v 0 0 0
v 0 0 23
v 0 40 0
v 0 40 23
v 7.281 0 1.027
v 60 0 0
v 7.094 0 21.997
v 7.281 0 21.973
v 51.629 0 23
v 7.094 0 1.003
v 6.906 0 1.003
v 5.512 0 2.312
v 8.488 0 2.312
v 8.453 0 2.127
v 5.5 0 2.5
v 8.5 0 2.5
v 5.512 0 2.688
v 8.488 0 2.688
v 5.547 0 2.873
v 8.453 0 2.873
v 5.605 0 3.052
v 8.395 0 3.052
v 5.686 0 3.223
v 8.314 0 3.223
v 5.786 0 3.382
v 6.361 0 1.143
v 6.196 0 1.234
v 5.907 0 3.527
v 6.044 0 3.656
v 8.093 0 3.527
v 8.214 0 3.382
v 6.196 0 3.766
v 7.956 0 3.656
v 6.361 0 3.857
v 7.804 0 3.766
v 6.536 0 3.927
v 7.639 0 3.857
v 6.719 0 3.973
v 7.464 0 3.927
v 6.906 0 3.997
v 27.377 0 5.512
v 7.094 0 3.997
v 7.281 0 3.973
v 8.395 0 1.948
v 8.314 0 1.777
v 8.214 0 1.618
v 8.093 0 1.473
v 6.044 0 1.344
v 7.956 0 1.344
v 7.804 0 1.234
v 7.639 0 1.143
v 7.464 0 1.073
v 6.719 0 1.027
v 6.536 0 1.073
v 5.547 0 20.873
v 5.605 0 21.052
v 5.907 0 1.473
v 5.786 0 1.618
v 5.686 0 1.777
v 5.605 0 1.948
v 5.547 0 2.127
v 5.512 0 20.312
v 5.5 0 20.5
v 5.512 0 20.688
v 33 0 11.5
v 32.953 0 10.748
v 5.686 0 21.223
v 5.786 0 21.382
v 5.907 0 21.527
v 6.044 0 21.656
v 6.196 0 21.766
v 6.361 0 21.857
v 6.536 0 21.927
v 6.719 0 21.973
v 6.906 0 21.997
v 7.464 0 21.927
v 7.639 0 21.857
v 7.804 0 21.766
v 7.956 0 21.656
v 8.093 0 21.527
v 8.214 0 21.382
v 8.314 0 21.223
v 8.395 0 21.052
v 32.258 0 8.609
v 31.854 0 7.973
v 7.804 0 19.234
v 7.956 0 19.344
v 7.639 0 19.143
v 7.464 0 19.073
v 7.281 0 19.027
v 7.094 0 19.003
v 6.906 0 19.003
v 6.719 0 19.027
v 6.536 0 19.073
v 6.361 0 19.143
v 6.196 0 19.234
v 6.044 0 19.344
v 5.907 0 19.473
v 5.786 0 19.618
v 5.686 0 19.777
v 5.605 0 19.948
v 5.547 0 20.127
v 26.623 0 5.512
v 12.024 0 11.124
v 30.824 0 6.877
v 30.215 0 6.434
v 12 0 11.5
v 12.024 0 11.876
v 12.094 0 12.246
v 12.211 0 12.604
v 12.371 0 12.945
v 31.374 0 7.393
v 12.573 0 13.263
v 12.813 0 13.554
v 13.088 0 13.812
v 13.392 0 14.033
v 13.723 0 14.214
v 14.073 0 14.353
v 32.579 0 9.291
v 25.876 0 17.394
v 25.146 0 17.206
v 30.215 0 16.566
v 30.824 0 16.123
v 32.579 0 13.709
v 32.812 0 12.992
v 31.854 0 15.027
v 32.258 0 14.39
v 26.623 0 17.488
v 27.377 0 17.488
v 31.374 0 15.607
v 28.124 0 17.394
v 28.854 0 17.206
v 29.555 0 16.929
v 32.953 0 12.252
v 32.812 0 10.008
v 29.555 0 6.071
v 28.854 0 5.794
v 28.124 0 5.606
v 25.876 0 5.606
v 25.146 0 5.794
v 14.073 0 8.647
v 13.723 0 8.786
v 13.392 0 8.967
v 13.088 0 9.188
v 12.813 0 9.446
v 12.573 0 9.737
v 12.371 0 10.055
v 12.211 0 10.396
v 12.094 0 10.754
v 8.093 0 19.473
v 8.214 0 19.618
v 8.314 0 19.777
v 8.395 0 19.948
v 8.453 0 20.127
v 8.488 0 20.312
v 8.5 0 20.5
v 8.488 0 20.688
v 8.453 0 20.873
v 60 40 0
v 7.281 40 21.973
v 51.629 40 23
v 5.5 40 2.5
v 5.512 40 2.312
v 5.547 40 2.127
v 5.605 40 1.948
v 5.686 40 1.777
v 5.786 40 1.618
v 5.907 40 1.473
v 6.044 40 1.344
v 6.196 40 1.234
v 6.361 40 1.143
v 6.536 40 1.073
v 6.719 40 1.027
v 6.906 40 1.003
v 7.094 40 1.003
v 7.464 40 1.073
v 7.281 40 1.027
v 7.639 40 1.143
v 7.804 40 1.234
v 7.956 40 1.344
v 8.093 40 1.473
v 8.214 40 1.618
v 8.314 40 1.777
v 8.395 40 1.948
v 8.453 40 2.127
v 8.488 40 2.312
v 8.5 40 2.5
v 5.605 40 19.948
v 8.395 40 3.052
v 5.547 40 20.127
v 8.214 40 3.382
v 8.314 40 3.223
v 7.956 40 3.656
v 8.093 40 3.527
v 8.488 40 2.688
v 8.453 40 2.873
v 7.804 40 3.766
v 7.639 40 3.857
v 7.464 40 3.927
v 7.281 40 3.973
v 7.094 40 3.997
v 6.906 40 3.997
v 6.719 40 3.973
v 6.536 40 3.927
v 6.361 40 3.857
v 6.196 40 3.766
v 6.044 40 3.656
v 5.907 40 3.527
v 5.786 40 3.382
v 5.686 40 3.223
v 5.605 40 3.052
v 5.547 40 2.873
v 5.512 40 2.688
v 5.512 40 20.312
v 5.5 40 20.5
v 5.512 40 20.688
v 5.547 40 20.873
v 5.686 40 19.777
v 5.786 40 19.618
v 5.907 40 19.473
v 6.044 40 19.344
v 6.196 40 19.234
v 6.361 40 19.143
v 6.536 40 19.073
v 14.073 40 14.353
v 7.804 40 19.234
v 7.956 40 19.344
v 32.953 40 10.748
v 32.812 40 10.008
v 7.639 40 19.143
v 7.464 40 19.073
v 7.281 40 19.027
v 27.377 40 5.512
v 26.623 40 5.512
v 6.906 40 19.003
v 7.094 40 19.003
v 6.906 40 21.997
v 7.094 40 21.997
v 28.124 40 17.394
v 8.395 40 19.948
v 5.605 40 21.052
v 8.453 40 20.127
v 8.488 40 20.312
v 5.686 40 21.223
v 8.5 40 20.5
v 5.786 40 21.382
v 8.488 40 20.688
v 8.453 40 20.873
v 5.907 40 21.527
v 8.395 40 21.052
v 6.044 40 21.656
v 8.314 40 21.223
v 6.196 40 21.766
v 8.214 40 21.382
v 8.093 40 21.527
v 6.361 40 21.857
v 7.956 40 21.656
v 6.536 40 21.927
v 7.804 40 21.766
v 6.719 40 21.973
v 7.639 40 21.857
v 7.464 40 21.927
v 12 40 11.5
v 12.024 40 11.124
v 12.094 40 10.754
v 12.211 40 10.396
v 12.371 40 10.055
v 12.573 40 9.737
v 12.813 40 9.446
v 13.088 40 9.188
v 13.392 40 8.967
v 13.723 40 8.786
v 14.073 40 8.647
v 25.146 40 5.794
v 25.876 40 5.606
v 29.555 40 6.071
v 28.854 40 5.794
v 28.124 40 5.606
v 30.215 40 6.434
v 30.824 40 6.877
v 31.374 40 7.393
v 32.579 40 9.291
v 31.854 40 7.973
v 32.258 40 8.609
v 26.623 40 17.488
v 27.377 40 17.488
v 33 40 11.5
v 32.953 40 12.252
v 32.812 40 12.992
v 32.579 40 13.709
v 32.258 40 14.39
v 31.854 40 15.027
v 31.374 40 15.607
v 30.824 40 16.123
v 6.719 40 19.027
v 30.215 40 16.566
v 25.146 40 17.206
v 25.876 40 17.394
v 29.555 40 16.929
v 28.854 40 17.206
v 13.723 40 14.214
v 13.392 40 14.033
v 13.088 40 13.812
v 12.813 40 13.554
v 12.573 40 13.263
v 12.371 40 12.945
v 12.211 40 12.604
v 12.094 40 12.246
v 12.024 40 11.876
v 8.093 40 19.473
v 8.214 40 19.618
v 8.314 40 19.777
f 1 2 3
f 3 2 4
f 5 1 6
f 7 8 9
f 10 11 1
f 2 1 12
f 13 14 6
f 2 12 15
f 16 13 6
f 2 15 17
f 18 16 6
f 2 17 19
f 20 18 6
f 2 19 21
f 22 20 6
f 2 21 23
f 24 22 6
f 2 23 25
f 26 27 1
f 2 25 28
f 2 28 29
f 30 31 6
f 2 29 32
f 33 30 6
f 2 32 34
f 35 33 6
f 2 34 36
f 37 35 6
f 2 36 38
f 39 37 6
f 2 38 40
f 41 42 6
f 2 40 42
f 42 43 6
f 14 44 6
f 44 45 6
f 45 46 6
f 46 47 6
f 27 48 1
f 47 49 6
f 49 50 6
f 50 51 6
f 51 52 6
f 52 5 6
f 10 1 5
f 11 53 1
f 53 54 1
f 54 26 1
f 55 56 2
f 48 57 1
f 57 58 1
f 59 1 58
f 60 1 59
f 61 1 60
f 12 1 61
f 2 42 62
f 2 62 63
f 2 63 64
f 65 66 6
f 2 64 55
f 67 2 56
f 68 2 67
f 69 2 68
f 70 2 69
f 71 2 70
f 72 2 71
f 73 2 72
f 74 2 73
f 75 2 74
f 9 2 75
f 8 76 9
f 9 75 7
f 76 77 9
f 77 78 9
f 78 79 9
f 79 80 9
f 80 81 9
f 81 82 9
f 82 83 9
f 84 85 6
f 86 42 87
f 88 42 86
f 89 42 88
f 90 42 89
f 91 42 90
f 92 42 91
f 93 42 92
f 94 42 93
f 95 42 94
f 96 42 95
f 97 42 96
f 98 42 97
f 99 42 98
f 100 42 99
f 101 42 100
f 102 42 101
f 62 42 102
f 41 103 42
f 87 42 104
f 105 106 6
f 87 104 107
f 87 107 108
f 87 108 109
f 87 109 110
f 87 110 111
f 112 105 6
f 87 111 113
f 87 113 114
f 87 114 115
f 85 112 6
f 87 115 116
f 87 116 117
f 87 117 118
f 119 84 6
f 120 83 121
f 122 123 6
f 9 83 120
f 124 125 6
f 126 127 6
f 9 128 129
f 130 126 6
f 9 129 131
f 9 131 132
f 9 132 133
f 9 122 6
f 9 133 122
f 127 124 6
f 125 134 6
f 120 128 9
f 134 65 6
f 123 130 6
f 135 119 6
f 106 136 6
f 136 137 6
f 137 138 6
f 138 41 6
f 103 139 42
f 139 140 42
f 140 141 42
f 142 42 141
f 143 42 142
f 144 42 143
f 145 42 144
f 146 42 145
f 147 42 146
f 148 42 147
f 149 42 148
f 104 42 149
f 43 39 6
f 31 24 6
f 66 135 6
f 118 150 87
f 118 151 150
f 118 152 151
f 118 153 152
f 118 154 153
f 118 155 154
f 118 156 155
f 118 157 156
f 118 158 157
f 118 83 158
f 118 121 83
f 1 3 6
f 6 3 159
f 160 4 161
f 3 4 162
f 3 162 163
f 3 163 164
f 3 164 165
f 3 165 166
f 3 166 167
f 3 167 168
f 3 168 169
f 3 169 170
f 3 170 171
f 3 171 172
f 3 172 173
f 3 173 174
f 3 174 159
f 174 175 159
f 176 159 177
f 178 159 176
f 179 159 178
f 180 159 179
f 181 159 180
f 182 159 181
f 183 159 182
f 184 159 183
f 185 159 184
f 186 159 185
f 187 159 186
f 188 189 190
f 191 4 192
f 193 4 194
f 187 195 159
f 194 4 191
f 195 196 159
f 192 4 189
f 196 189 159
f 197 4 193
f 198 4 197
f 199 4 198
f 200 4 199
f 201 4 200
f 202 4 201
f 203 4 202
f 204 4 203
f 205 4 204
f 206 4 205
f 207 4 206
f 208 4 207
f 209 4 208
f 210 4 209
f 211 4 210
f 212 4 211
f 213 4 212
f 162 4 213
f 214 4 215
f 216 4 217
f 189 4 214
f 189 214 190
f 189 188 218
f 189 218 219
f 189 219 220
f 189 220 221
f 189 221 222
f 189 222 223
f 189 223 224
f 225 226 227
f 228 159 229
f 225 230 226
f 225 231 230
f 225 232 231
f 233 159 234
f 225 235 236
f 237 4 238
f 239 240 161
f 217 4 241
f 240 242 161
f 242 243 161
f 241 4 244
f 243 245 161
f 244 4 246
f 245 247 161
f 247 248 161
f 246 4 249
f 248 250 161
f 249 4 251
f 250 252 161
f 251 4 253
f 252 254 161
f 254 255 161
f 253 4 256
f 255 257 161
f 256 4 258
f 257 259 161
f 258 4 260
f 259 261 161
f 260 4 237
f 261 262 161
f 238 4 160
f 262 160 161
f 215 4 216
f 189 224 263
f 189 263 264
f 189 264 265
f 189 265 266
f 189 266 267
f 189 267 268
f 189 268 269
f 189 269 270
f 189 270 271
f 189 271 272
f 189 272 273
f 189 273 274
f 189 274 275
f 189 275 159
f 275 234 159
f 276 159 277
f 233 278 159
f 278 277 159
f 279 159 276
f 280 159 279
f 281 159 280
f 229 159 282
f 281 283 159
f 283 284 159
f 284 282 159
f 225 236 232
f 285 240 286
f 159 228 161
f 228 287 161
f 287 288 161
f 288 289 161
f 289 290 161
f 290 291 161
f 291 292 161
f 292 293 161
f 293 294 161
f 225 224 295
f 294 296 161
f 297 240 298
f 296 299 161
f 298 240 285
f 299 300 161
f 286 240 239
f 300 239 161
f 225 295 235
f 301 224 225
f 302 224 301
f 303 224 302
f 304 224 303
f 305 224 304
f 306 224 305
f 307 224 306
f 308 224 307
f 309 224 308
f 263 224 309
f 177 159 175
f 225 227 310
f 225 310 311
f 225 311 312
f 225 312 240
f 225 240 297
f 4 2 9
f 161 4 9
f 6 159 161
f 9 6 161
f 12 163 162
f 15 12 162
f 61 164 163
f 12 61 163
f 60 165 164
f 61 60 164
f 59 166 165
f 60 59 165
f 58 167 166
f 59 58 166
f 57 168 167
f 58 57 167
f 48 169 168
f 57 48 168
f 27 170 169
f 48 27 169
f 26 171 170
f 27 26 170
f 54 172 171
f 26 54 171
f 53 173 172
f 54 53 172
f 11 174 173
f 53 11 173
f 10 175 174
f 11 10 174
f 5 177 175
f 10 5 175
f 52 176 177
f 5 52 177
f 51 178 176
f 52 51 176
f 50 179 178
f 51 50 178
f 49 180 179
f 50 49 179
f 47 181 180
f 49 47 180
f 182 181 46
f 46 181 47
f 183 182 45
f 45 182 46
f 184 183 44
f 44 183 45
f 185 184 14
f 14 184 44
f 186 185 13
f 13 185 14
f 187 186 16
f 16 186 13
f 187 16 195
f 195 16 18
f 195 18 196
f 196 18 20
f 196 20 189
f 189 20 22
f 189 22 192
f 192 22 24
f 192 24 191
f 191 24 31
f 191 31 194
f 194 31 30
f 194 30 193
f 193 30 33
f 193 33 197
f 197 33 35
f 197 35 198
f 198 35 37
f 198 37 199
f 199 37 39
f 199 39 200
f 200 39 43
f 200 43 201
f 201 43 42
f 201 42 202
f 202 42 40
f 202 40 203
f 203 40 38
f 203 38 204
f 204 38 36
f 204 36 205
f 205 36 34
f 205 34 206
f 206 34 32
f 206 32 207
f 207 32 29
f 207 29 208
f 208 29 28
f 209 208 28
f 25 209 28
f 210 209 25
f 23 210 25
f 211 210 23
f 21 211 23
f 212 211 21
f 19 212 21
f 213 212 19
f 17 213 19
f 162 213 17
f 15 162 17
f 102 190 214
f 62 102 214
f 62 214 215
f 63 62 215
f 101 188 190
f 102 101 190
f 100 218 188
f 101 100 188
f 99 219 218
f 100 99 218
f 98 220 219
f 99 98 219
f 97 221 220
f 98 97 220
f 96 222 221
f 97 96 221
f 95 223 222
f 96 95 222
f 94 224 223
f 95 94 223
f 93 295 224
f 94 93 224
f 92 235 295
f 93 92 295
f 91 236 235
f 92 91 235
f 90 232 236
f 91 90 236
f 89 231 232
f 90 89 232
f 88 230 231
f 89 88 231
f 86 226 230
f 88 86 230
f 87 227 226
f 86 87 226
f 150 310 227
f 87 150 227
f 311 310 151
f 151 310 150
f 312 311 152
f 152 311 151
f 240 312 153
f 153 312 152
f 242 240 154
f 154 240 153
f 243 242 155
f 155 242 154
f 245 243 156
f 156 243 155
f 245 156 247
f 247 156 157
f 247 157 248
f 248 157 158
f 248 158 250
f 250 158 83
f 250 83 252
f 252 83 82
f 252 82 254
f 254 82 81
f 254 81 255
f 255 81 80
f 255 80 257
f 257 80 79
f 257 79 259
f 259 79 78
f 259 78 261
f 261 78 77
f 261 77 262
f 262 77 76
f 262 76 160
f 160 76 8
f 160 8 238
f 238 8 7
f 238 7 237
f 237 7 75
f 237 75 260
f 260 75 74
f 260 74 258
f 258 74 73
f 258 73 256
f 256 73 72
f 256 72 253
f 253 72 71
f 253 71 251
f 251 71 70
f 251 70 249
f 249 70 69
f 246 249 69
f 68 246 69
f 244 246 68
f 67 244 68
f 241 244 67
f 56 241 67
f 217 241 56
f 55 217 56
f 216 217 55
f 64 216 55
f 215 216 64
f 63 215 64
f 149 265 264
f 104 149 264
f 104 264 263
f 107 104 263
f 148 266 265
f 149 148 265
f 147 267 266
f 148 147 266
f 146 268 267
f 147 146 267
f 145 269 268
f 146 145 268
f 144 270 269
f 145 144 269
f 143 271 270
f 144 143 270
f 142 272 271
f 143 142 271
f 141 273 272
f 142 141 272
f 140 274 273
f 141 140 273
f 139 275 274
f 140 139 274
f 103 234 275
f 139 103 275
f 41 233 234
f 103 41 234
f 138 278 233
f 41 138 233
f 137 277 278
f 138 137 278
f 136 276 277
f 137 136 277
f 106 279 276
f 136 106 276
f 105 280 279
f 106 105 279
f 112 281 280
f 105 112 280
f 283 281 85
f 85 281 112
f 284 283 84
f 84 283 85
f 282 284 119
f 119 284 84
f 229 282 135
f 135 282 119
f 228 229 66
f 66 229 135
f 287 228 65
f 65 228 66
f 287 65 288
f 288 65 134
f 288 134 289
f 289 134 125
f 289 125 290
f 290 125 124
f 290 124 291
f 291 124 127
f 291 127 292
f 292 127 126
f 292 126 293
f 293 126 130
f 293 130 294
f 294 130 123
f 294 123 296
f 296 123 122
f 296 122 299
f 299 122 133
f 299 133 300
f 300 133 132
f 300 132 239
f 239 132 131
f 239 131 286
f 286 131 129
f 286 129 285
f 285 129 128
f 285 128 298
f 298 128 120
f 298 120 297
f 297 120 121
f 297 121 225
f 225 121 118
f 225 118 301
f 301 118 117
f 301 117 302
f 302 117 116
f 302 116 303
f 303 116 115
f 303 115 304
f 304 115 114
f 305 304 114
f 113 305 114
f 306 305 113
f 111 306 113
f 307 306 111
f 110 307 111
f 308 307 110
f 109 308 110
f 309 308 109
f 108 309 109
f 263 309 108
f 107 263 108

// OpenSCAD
//Baxterbot motor mount
//bpw 10/10/13

 $fn=50;  //resolution


module MotorMount() {

difference(){

cube([60, 40, 23], center = false);


//botom screw hole
translate([7,-1,2.5]){
	rotate([-90,0,0]){
		cylinder(h=42, r=1.5);}}

//top screw hole
translate([7,-1,20.5]){
	rotate([-90,0,0]){
		cylinder(h=42, r=1.5);}}

hull(){
//hold for other side of axil
translate([27,-1,23/2]){
	rotate([-90,0,0]){
		cylinder(h=42, r=6);}}
//hold for little nub
translate([15,-1,23/2]){
	rotate([-90,0,0]){
		cylinder(h=42, r=3);}}
}

//cut off the slant
translate([60,-30,0]){
	rotate([0,-20,0]){
		cube([20, 100,40], center = false);}}
}






}



MotorMount();
